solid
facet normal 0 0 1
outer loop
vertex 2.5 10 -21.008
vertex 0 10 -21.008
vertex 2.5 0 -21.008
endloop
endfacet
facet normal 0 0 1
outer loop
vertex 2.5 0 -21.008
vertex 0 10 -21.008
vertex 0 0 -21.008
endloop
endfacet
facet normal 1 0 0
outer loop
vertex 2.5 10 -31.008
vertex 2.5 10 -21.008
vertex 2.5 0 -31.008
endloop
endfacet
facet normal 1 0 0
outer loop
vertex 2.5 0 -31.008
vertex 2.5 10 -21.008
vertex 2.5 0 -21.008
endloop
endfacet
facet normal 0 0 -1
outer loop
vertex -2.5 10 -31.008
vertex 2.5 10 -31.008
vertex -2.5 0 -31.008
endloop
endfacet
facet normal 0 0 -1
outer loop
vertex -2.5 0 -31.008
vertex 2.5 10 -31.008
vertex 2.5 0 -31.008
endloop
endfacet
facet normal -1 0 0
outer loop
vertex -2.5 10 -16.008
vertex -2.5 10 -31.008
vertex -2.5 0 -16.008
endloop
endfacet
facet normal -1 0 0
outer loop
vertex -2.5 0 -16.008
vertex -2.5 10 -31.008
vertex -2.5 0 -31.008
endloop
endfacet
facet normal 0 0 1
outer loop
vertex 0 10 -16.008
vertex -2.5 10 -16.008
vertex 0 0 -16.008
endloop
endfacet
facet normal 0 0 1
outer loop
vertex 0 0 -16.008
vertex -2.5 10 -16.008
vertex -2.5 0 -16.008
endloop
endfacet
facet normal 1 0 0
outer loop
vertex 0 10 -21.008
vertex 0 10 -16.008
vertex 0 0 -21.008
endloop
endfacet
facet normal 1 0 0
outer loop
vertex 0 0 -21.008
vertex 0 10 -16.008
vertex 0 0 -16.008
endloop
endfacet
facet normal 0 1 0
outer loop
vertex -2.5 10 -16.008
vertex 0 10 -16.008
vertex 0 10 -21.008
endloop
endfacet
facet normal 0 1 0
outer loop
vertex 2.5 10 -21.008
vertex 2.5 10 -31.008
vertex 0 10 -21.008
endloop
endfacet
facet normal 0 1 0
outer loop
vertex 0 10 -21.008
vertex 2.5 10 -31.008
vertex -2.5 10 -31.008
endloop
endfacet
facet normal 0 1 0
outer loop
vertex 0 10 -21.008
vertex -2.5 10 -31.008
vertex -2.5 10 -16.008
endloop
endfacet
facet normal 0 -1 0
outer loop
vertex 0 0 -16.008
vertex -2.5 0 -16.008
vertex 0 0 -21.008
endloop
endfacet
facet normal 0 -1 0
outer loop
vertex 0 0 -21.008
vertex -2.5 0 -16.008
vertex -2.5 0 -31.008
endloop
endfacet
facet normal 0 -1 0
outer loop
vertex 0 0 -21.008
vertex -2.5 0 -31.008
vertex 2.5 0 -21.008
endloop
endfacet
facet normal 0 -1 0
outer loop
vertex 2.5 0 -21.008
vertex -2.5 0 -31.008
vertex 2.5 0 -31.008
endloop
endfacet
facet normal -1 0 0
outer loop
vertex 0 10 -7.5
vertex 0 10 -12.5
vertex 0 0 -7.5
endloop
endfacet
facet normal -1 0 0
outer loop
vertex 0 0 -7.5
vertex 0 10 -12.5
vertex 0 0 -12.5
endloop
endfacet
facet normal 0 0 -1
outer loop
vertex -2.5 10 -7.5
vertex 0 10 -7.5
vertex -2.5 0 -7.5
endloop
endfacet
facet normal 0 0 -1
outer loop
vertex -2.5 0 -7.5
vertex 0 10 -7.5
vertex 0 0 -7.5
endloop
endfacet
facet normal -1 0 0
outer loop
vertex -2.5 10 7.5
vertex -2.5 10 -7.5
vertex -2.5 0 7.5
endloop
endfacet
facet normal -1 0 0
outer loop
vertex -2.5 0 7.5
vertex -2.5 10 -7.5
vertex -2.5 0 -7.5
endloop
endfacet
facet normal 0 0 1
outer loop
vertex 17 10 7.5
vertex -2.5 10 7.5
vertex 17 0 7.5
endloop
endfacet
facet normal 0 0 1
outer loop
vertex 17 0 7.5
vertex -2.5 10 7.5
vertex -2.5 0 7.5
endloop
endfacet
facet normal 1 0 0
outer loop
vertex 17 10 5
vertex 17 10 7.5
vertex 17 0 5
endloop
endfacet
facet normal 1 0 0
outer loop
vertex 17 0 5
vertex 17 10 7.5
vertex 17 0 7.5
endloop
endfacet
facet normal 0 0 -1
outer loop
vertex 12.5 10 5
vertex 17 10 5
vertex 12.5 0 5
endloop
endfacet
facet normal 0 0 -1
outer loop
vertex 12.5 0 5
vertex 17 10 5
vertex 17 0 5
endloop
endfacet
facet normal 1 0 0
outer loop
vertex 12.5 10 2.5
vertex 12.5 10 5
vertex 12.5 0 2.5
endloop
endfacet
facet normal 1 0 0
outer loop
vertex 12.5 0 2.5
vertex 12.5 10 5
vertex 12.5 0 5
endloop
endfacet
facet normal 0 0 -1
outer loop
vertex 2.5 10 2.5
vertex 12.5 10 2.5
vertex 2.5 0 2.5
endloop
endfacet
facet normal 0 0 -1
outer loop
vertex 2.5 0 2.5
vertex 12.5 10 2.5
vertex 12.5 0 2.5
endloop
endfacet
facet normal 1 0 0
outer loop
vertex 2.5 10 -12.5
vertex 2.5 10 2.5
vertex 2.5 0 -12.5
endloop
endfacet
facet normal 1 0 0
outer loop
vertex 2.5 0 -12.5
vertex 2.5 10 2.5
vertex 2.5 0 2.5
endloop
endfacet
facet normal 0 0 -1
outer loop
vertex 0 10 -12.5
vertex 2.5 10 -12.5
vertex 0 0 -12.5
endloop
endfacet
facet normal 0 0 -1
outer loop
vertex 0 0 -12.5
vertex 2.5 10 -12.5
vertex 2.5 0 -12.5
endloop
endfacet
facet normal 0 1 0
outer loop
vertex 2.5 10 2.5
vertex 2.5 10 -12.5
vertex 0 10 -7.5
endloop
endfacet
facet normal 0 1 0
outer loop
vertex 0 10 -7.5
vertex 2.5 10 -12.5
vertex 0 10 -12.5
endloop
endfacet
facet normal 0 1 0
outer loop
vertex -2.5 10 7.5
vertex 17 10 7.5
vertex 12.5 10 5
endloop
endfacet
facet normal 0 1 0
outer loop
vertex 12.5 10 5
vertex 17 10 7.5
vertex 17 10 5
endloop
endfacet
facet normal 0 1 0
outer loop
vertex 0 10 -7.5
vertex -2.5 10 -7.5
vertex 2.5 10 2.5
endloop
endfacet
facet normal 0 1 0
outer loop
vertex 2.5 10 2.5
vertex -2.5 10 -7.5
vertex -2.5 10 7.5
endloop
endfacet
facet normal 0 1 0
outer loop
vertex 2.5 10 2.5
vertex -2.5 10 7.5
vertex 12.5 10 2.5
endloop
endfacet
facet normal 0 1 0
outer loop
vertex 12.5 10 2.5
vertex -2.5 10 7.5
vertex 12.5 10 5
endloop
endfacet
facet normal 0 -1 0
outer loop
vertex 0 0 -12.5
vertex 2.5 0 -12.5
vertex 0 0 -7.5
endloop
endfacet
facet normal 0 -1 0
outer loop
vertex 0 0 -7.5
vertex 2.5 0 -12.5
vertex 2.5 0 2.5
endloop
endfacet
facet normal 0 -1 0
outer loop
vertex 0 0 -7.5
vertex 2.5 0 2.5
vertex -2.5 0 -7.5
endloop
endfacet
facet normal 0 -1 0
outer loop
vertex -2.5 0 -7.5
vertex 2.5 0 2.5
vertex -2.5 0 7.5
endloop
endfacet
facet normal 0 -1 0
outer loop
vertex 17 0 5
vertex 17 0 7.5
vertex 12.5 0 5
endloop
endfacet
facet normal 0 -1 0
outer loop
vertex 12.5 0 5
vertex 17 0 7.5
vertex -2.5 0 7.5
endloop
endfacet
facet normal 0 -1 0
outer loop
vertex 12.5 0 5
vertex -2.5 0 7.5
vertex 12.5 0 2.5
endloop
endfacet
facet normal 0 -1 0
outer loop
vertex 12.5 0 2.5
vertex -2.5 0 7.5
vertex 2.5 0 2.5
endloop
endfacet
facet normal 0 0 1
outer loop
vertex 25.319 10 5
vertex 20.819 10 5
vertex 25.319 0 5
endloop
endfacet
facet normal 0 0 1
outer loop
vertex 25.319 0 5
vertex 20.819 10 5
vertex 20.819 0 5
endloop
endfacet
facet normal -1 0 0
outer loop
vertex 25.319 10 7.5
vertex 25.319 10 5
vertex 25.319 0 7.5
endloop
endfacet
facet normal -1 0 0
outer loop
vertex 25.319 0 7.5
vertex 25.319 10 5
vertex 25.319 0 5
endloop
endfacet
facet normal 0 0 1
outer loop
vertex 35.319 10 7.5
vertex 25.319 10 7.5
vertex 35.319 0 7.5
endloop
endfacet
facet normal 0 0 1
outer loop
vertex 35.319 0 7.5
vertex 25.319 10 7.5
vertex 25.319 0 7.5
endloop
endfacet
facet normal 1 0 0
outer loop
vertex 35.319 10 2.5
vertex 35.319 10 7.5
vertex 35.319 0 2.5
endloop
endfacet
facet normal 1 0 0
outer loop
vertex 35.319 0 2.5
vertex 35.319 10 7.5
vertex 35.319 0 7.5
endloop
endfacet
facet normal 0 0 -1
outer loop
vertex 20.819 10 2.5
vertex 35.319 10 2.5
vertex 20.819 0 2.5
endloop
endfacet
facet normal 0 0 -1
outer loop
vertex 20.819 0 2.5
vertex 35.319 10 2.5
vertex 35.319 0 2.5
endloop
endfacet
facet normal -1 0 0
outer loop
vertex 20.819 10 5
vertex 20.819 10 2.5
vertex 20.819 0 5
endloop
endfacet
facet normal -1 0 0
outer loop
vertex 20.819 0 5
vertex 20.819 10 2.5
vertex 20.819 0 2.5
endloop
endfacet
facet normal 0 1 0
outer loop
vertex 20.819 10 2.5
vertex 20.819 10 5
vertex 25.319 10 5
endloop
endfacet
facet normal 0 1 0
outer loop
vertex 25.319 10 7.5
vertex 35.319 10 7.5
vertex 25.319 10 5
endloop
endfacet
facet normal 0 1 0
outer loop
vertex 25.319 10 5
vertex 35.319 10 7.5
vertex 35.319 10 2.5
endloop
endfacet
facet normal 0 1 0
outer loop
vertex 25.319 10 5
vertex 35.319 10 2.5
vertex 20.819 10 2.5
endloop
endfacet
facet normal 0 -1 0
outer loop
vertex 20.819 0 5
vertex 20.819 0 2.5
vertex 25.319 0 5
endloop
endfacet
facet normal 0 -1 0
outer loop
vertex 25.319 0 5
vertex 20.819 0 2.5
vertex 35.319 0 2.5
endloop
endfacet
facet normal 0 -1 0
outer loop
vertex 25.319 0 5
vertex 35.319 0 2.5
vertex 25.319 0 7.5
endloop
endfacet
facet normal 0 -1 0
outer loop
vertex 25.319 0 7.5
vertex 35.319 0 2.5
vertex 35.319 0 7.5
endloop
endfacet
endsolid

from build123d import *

# Parameters (mm, degrees)
SKETCH1_W           = 2.5
SKETCH1_H           = 5
SKETCH1_W_2         = 5
SKETCH1_H_2         = 15
SKETCH1_W_3         = 4.5
SKETCH1_H_3         = 2.5
BOSS_EXTRUDE2_DEPTH = 10


with BuildPart() as part:
    # Sketch1 → Boss-Extrude2 (new body)
    with BuildSketch(Plane(origin=(0, 0, 0), x_dir=(1, 0, 0), z_dir=(0, 1, 0))):
        Polygon((-2.5, 21.008471614), (0, 21.008471614), (2.5, 21.008471614), (2.5, 31.008471614), (-2.5, 31.008471614), align=None)
        with Locations((-1.25, 18.508471614)):
            Rectangle(SKETCH1_W, SKETCH1_H)
        with Locations((1.25, 10)):
            Rectangle(SKETCH1_W, SKETCH1_H)
        Rectangle(SKETCH1_W_2, SKETCH1_H_2)
        Polygon((2.5, -2.5), (2.5, -7.5), (12.5, -7.5), (12.5, -5), (12.5, -2.5), align=None)
        with Locations((14.75, -6.25)):
            Rectangle(SKETCH1_W_3, SKETCH1_H_3)
        with Locations((23.069397854, -3.75)):
            Rectangle(SKETCH1_W_3, SKETCH1_H_3)
        Polygon((25.319397854, -2.5), (25.319397854, -5), (25.319397854, -7.5), (35.319397854, -7.5), (35.319397854, -2.5), align=None)
    extrude(amount=BOSS_EXTRUDE2_DEPTH)


solid = part.part
